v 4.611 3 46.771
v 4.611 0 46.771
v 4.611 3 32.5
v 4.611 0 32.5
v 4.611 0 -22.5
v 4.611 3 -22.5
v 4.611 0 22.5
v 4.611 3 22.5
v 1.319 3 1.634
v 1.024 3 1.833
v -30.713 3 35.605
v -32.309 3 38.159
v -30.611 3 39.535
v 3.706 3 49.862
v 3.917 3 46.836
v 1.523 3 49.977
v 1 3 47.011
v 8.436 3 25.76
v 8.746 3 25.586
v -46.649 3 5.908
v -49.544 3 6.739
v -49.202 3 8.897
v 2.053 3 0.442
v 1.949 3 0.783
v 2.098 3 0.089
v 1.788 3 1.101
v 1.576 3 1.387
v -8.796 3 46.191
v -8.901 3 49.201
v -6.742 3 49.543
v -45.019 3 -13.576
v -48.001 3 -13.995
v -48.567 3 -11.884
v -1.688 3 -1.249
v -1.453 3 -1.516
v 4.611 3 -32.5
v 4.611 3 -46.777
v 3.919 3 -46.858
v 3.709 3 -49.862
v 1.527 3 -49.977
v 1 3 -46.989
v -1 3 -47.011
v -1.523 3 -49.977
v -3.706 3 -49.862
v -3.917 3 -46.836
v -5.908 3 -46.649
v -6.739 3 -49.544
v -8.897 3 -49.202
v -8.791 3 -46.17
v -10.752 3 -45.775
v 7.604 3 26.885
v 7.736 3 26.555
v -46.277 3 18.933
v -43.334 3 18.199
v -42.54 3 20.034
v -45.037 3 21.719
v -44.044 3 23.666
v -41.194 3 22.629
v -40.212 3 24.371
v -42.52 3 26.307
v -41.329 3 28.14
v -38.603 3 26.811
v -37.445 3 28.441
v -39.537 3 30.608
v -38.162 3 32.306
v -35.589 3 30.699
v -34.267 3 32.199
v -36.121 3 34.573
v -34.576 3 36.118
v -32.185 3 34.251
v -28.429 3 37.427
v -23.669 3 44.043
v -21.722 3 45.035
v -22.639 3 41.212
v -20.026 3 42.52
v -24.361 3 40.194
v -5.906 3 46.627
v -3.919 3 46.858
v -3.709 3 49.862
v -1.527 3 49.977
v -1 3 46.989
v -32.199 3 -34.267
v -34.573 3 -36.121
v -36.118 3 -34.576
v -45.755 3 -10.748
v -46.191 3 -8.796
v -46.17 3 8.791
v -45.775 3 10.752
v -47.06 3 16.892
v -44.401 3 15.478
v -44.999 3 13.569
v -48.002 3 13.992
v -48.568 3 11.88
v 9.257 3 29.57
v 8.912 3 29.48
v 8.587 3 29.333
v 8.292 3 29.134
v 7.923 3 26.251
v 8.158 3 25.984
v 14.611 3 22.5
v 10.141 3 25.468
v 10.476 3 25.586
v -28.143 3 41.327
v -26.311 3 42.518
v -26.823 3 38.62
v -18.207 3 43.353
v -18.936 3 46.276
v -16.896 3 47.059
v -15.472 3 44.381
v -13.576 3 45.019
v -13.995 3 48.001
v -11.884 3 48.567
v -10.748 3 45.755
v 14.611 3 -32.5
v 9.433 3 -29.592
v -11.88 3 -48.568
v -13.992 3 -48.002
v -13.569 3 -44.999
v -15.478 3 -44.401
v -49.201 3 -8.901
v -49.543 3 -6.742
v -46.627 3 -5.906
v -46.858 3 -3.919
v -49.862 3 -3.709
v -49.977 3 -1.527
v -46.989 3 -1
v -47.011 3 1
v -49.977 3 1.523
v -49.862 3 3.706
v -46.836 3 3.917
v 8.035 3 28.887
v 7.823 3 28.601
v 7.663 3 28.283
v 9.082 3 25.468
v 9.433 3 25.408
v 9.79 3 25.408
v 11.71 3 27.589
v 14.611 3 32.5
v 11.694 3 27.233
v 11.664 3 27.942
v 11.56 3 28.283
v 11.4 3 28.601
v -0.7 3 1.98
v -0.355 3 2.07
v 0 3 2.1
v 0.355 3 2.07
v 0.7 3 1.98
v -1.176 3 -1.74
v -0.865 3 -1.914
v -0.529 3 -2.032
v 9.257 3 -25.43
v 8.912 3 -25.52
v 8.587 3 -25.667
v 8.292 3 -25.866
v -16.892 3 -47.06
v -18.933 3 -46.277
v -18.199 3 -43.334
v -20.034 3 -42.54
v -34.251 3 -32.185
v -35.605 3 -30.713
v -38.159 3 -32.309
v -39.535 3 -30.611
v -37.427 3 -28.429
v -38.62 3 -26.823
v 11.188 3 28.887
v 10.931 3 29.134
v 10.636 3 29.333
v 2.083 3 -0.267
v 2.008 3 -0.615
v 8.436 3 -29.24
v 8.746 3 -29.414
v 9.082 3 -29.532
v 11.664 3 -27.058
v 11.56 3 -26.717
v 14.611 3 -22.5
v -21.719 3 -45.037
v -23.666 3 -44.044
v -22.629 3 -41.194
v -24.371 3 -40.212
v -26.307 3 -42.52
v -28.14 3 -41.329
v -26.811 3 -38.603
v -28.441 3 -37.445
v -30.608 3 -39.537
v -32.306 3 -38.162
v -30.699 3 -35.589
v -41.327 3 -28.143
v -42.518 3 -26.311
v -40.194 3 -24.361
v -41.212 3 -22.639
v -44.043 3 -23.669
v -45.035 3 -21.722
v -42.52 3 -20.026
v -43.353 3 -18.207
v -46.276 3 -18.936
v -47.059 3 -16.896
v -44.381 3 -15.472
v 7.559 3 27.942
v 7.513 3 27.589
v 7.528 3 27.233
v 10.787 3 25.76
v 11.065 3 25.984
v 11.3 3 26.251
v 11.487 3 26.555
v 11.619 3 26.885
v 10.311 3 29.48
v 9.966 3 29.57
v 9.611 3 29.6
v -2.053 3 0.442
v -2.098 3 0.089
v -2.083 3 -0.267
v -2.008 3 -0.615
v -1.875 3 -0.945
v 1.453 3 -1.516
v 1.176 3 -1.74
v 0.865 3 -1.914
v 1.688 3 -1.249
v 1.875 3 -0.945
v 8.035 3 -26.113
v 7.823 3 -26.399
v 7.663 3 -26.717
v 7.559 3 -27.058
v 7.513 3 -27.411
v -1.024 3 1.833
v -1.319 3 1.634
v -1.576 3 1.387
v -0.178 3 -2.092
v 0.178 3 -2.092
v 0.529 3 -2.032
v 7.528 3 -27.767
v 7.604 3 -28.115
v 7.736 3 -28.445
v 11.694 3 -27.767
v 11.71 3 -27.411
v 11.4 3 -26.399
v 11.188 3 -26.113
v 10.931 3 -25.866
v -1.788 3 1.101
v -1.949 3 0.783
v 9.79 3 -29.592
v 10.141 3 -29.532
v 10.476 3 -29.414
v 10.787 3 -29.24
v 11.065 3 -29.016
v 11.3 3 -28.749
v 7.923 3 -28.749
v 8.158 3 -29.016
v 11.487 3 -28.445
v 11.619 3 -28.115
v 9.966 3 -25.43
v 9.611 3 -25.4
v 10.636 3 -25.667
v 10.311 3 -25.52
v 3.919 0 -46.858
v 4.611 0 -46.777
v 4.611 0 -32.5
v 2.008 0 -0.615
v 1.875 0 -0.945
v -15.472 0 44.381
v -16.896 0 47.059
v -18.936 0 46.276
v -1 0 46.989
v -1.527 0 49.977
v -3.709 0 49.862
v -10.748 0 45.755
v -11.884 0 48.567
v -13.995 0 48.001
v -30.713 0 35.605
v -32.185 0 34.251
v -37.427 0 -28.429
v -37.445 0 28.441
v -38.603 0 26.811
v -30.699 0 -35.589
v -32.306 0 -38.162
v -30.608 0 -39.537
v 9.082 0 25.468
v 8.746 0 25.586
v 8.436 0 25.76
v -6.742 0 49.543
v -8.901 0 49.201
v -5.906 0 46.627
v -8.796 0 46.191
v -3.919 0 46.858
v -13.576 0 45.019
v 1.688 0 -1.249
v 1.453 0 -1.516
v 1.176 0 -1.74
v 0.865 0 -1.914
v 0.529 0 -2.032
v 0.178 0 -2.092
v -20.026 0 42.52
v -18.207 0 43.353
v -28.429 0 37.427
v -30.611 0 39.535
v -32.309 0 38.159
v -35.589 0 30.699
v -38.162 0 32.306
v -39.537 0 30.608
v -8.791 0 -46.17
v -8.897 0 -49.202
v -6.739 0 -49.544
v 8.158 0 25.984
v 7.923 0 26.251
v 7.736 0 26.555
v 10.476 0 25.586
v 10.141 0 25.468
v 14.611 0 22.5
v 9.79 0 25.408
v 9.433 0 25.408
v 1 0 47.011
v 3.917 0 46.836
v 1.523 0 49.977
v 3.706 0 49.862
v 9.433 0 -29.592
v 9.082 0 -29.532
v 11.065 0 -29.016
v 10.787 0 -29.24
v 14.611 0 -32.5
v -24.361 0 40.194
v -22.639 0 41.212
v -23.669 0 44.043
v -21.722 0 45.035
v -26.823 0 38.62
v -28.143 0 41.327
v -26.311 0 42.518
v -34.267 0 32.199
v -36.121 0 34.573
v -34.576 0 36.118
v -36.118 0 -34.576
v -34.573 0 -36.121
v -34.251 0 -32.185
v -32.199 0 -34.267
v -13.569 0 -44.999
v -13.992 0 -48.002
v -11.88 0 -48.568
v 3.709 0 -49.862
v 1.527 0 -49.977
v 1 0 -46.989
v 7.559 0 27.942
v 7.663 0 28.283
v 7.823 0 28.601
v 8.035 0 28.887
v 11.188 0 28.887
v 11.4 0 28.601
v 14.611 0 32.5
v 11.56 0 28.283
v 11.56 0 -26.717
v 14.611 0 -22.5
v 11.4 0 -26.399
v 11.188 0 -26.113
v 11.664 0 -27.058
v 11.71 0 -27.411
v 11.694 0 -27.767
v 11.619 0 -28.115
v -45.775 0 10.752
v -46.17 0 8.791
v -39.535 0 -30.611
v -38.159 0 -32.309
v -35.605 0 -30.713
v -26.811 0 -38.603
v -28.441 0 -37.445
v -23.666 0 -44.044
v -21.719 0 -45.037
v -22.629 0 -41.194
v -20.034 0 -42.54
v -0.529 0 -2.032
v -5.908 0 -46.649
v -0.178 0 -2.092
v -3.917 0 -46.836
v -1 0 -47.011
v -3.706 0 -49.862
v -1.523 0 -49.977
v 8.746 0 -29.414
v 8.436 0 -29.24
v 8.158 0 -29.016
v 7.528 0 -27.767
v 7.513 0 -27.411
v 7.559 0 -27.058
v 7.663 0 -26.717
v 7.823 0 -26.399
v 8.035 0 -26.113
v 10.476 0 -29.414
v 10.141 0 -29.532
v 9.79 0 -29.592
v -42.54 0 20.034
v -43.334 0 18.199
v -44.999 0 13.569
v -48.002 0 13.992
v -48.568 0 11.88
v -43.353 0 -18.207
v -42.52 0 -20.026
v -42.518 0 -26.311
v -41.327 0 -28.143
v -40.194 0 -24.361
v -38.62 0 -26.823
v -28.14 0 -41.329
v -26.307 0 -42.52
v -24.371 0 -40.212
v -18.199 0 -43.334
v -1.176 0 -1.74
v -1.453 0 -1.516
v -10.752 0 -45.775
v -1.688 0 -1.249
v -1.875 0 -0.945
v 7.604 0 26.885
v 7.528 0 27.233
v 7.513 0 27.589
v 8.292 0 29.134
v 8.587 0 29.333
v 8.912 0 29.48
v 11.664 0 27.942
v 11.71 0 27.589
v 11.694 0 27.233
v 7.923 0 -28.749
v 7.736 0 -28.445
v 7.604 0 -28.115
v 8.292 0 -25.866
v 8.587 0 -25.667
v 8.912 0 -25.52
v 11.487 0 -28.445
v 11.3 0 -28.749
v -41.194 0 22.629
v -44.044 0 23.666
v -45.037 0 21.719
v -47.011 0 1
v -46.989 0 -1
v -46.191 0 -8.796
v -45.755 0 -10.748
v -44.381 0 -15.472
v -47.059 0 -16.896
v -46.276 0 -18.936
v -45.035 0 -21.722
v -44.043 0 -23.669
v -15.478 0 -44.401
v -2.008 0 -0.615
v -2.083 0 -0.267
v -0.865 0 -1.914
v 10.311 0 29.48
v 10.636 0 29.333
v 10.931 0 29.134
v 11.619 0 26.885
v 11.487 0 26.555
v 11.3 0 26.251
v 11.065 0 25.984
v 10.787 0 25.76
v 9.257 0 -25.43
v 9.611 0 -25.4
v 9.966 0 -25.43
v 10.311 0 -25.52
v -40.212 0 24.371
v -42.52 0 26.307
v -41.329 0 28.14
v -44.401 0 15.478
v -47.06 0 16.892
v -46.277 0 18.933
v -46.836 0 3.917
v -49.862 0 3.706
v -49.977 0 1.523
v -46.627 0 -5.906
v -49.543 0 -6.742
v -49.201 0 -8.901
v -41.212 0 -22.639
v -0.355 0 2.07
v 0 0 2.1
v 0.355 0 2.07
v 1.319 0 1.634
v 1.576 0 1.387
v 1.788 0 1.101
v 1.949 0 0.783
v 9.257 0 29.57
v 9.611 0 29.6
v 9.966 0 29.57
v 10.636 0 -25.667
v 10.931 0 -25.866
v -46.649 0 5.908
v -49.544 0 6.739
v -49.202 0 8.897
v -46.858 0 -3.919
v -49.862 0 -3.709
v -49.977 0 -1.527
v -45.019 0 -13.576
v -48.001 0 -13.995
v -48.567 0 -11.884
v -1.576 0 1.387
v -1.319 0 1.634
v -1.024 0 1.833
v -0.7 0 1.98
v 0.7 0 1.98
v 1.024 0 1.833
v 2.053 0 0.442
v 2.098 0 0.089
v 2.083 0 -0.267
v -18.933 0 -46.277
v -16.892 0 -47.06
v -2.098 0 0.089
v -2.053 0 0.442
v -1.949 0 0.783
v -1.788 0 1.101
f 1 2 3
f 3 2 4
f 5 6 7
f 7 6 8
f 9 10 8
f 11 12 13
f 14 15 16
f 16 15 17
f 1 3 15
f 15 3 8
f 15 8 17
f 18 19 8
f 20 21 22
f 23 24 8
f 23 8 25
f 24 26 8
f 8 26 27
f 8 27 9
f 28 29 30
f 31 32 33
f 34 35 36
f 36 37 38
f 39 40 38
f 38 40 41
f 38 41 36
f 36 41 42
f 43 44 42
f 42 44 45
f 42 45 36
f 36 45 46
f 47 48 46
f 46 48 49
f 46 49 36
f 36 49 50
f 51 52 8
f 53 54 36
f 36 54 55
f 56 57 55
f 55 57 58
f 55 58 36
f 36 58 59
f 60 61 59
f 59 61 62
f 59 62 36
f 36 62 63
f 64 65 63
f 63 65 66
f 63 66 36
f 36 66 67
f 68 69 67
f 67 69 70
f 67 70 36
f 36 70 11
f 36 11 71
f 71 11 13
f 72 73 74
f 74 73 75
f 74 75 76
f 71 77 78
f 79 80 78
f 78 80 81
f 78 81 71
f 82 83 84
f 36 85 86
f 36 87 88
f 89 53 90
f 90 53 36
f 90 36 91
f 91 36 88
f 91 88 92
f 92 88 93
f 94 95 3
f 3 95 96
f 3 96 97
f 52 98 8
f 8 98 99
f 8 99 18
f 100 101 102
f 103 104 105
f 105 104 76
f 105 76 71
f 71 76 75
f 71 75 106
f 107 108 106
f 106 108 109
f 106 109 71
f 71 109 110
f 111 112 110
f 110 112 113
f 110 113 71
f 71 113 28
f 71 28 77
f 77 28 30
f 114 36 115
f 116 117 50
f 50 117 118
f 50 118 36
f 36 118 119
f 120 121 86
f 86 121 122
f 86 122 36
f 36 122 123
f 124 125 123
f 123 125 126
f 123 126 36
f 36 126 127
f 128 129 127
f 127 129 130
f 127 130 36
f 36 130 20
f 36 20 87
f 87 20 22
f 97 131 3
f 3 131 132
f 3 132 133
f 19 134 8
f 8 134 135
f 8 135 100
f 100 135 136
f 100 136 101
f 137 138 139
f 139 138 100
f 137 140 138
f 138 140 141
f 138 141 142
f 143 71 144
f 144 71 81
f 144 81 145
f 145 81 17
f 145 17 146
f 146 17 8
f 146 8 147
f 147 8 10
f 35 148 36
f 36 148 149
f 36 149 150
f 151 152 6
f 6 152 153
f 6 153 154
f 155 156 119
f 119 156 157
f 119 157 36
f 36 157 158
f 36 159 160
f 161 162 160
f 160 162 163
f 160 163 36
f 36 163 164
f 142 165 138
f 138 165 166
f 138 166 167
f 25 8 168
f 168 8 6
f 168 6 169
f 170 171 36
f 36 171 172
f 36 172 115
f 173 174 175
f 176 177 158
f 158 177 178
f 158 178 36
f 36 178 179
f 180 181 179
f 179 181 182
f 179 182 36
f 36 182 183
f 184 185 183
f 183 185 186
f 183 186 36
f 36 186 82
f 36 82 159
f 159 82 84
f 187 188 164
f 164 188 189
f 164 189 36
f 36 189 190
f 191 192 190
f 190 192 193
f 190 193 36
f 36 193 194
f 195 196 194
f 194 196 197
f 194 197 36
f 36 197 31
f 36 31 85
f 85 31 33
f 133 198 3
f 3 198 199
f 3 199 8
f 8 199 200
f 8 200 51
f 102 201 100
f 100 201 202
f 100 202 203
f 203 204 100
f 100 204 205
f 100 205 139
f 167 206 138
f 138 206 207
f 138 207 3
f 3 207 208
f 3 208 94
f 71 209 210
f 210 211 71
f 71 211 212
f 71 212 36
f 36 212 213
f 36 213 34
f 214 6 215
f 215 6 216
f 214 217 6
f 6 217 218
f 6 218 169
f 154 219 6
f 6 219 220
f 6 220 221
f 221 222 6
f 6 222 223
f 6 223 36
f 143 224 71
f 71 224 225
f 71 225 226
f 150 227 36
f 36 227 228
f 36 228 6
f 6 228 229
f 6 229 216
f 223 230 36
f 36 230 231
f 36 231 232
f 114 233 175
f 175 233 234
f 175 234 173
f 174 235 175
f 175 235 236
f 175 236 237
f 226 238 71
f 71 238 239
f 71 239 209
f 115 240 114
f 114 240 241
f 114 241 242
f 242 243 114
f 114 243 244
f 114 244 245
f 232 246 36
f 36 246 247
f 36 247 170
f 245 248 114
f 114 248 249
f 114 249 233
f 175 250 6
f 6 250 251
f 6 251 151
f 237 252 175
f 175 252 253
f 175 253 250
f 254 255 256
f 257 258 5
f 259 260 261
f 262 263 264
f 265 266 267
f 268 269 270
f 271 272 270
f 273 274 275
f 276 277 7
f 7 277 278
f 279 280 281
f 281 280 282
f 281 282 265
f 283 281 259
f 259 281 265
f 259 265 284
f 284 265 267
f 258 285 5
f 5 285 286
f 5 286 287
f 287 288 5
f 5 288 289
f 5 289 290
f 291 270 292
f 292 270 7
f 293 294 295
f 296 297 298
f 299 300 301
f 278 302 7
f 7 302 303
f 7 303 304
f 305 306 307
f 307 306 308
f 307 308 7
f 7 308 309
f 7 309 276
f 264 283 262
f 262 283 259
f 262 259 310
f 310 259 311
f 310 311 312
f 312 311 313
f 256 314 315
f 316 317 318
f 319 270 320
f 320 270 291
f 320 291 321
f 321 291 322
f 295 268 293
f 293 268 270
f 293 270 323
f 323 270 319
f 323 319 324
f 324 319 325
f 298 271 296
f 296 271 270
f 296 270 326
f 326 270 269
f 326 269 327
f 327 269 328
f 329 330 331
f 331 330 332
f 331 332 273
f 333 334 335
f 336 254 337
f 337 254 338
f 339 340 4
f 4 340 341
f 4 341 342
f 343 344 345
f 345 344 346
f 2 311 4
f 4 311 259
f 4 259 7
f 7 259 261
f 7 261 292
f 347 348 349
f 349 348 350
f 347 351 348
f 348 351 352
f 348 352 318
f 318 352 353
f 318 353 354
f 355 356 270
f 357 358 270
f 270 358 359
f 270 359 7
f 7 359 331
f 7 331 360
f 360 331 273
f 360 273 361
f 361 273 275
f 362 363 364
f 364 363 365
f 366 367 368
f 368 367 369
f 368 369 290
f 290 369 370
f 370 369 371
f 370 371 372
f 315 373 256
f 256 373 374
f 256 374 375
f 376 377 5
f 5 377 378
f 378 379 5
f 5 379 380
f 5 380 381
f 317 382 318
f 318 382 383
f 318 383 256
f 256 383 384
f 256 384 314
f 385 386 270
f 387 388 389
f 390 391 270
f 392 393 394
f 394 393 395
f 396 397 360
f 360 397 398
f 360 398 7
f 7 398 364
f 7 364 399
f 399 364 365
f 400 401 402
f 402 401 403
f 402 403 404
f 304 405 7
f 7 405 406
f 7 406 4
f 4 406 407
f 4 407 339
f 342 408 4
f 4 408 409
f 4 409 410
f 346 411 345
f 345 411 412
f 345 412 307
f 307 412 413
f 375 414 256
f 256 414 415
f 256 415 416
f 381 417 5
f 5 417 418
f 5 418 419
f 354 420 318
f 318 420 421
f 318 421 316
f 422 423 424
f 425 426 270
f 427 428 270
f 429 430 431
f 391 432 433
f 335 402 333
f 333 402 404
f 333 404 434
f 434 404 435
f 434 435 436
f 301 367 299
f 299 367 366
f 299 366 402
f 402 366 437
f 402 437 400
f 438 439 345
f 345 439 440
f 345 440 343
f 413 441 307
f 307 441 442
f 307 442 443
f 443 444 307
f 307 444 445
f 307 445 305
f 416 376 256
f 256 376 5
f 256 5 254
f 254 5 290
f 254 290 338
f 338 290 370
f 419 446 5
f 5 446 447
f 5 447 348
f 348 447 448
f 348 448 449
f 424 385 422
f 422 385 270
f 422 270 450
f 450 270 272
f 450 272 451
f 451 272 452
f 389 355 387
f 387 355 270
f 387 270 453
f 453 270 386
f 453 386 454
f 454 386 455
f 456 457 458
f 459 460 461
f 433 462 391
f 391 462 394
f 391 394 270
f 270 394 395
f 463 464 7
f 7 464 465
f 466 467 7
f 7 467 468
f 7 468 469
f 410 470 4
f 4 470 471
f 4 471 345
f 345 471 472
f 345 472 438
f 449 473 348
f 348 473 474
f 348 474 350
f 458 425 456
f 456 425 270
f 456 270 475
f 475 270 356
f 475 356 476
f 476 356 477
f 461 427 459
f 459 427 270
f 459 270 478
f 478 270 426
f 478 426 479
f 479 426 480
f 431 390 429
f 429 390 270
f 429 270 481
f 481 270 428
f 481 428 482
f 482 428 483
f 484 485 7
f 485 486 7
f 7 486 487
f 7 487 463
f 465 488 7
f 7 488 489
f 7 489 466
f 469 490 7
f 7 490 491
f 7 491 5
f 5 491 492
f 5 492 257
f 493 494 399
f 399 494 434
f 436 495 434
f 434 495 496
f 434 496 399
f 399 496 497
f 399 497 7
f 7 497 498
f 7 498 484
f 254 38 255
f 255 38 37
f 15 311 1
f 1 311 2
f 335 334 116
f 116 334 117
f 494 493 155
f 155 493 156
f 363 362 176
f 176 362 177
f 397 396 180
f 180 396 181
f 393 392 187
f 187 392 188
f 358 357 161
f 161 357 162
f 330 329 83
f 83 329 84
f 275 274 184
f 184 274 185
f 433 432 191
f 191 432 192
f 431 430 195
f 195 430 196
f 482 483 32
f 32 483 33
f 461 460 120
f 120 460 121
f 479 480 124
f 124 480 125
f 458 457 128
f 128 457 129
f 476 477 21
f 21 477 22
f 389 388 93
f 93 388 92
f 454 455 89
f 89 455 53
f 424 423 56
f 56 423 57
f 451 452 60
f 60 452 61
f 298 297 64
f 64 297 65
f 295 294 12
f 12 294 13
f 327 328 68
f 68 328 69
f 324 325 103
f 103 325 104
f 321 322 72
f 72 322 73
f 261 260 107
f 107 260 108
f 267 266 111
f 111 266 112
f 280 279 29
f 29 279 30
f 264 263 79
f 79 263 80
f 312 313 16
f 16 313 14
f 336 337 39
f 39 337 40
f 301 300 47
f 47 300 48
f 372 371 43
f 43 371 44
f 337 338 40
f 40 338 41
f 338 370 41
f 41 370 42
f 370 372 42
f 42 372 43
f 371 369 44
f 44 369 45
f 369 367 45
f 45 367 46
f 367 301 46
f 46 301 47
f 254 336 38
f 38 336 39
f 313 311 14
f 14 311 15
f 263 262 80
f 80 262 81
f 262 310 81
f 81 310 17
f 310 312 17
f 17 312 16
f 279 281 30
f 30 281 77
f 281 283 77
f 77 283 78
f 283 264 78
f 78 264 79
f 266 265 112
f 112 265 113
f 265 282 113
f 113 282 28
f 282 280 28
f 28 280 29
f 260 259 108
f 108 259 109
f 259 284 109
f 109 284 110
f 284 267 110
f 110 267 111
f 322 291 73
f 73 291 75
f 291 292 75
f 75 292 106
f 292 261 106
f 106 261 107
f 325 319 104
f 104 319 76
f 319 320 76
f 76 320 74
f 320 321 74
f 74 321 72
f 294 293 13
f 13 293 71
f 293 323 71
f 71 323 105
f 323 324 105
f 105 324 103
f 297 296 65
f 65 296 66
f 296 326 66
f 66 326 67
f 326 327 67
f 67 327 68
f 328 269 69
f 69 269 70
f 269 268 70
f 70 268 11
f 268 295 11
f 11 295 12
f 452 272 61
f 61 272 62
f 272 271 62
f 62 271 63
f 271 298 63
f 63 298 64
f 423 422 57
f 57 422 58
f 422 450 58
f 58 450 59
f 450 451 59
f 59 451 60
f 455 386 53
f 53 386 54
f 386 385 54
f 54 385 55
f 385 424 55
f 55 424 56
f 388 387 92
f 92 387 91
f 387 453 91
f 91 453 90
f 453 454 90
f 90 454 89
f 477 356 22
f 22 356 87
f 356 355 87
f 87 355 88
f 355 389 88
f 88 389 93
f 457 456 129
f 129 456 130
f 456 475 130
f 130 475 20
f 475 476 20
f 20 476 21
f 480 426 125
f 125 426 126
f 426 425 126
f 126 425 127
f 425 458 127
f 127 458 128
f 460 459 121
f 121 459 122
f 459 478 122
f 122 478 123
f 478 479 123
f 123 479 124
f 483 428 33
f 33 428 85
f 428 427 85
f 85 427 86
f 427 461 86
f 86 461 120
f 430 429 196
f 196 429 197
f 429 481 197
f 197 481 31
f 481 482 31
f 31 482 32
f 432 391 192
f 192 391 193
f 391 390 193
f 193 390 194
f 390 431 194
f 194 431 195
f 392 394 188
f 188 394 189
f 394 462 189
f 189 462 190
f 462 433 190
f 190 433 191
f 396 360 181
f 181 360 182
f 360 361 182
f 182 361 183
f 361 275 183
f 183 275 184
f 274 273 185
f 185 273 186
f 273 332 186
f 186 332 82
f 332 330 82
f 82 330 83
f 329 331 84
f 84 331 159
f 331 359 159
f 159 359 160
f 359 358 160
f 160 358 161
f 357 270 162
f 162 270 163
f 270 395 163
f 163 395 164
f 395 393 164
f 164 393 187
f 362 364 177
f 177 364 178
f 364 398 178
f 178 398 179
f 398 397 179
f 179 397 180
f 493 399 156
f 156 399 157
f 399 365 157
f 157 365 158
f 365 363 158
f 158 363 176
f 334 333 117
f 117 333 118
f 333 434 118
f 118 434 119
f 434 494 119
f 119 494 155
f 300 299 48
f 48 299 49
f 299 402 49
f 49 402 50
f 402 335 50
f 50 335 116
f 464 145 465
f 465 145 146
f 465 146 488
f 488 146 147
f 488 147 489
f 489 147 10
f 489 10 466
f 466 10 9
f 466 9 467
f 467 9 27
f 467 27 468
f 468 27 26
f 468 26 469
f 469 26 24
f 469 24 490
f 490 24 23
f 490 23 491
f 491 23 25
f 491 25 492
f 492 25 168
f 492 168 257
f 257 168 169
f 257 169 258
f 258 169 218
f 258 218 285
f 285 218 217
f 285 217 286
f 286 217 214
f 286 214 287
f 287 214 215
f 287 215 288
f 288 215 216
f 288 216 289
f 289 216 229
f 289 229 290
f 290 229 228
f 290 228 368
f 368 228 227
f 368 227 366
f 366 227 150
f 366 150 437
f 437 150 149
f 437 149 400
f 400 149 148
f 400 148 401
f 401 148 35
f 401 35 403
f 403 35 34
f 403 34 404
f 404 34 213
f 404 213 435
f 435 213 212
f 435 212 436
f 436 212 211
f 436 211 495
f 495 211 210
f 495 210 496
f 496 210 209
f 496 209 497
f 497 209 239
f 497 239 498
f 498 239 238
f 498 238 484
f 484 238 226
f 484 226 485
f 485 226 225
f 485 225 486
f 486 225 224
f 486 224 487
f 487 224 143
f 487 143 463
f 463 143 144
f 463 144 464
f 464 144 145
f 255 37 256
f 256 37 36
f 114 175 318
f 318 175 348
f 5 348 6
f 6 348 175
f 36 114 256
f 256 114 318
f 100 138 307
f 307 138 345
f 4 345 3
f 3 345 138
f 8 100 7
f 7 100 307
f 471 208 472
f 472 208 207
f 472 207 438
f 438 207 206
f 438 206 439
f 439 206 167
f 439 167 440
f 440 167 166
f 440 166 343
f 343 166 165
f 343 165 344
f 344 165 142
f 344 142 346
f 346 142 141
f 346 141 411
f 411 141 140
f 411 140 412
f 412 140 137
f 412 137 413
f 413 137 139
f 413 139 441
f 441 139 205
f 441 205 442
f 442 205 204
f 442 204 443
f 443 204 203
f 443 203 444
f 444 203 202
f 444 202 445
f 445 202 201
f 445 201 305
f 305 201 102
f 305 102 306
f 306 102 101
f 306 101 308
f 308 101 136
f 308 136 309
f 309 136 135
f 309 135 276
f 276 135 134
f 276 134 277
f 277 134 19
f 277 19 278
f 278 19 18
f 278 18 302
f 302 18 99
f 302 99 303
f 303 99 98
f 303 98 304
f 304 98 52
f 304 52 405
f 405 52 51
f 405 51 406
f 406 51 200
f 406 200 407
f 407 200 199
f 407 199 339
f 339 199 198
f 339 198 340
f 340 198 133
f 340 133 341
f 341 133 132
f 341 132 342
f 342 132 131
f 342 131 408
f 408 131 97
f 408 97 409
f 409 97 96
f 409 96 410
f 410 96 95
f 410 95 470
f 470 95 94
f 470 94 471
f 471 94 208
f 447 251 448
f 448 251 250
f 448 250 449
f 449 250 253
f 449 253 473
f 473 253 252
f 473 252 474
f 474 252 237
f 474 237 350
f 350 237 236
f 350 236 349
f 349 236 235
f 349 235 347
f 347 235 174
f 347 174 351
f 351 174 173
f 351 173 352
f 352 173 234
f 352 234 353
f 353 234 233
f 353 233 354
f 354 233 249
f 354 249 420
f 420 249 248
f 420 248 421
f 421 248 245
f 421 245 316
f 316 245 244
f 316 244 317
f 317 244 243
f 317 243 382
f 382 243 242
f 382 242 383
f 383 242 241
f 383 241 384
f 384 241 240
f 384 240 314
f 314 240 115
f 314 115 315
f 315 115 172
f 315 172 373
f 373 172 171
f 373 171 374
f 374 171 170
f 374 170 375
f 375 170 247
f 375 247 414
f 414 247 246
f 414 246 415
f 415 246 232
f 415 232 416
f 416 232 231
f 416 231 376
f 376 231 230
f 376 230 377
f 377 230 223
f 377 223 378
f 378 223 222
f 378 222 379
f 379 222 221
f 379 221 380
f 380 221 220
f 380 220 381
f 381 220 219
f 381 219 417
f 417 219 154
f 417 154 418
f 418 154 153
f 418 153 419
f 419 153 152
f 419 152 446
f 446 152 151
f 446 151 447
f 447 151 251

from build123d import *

# Parameters (mm, degrees)
SKETCH_1_R               = 50
EXTRUDE_1_DEPTH          = 3
CUT_EXTRUDE_START        = -3
CUT_EXTRUDE_1_DEPTH      = 3
PATTERN_CIRCULAR_1_COUNT = 60
SKETCH_3_R               = 2.1
CUT_EXTRUDE_2_DEPTH      = 3
SKETCH_7_W               = 107.754666761
SKETCH_7_H               = 25.516796979
CUT_EXTRUDE_3_DEPTH      = 63
SKETCH_8_W               = 20
SKETCH_8_H               = 10
EXTRUDE_2_DEPTH          = 3
SKETCH_9_R               = 2.1
CUT_EXTRUDE_4_DEPTH      = 19


with BuildPart() as part:
    # Эскиз1 → Бобышка-Вытянуть1 (new body)
    with BuildSketch(Plane(origin=(0, 0, 0), x_dir=(1, 0, 0), z_dir=(0, 1, 0))):
        with Locations(Location((0, 0, 0), (0, 0, 270))):
            Circle(SKETCH_1_R)
    extrude(amount=EXTRUDE_1_DEPTH)

    # Эскиз2 → Вырез-Вытянуть1 (cut)
    with BuildSketch(Plane(origin=(0, 3, 0), x_dir=(1, 0, 0), z_dir=(0, 1, 0)).offset(CUT_EXTRUDE_START)):
        with BuildLine():
            Line((-1, 47.010639502), (1, 46.989360498))
            Line((1, 46.989360498), (1.526745916, 49.976685033))
            ThreePointArc((1.526745916, 49.976685033), (0.001866861, 49.999999965), (-1.523013931, 49.976798903))
            Line((-1.523013931, 49.976798903), (-1, 47.010639502))
        make_face()
    cut_extrude_1 = extrude(amount=CUT_EXTRUDE_1_DEPTH, mode=Mode.SUBTRACT)

    # Круговой массив1: Вырез-Вытянуть1 ×60 about axis
    pattern_circular_1_axis = Axis((0, 0, 0), (0, 1, 0))
    for i in range(1, PATTERN_CIRCULAR_1_COUNT):
        add(cut_extrude_1.rotate(pattern_circular_1_axis, i * 360 / PATTERN_CIRCULAR_1_COUNT), mode=Mode.SUBTRACT)

    # Эскиз3 → Вырез-Вытянуть2 (cut)
    with BuildSketch(Plane(origin=(0, 3, 0), x_dir=(1, 0, 0), z_dir=(0, 1, 0))):
        with Locations(Location((0, 0, 0), (0, 0, 270))):
            Circle(SKETCH_3_R)
    extrude(amount=-CUT_EXTRUDE_2_DEPTH, mode=Mode.SUBTRACT)

    # Эскиз7 → Вырез-Вытянуть3 (cut)
    with BuildSketch(Plane(origin=(4.611469334, 0, 0), x_dir=(0, 0, -1), z_dir=(1, 0, 0))):
        with Locations((0.845436045, 1.078554444)):
            Rectangle(SKETCH_7_W, SKETCH_7_H)
    extrude(amount=CUT_EXTRUDE_3_DEPTH, mode=Mode.SUBTRACT)

    # Эскиз8 → Бобышка-Вытянуть2 (add)
    with BuildSketch(Plane(origin=(0, 3, 0), x_dir=(1, 0, 0), z_dir=(0, 1, 0))):
        with Locations((4.611469334, 27.5)):
            Rectangle(SKETCH_8_W, SKETCH_8_H)
        with Locations((4.611469334, -27.5)):
            Rectangle(SKETCH_8_W, SKETCH_8_H)
    extrude(amount=-EXTRUDE_2_DEPTH)

    # Эскиз9 → Вырез-Вытянуть4 (cut)
    with BuildSketch(Plane(origin=(0, 3, 0), x_dir=(1, 0, 0), z_dir=(0, 1, 0))):
        with Locations(Location((9.611469334, 27.5, 0), (0, 0, 270))):
            Circle(SKETCH_9_R)
        with Locations(Location((9.611469334, -27.5, 0), (0, 0, 270))):
            Circle(SKETCH_9_R)
    extrude(amount=-CUT_EXTRUDE_4_DEPTH, mode=Mode.SUBTRACT)


solid = part.part
